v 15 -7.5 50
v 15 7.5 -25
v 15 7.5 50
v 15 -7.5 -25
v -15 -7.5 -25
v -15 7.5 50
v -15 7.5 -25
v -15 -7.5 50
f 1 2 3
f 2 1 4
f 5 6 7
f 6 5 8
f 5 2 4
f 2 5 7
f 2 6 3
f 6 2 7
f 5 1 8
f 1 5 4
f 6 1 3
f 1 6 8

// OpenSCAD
// Define the dimensions of the rectangular blocks
block_width = 20;  // Width of the block
block_height = 40; // Height of the block
block_depth = 10;  // Depth of the block

// Function to create a rectangular block
module rectangular_block(width, height, depth, slant_top = false, slant_side = false, rotation = [0, 0, 0]) {
    if (slant_top) {
        // Create a block with a slanted top surface
        polyhedron(points=[
            [0, 0, 0], [width, 0, 0], [width, depth, 0], [0, depth, 0], // Base vertices
            [0, 0, height], [width, 0, height], [width, depth, height - 5], [0, depth, height - 5] // Top vertices with slant
        ],
        faces=[
            [0, 1, 2, 3], // Base
            [4, 5, 6, 7], // Top
            [0, 1, 5, 4], // Side 1
            [1, 2, 6, 5], // Side 2
            [2, 3, 7, 6], // Side 3
            [3, 0, 4, 7]  // Side 4
        ]);
    } else if (slant_side) {
        // Create a block with a slanted side surface
        polyhedron(points=[
            [0, 0, 0], [width, 0, 0], [width, depth, 0], [0, depth, 0], // Base vertices
            [0, 0, height], [width, 0, height], [width - 5, depth, height], [0, depth, height] // Top vertices with slant
        ],
        faces=[
            [0, 1, 2, 3], // Base
            [4, 5, 6, 7], // Top
            [0, 1, 5, 4], // Side 1
            [1, 2, 6, 5], // Side 2
            [2, 3, 7, 6], // Side 3
            [3, 0, 4, 7]  // Side 4
        ]);
    } else {
        // Create a regular rectangular block
        cube([width, depth, height], center = true);
    }
    rotate(rotation) {
        translate([0, 0, height / 2]) {
            cube([width, depth, height], center = true);
        }
    }
}

// Generate six rectangular blocks with modifications based on the differences list

// Block 1: Adjust the top surface to be flat and parallel to the base
rectangular_block(block_width, block_height, block_depth, slant_top = false);

// Block 2: Reduce the height and increase the width
rectangular_block(block_width + 10, block_height - 10, block_depth);

// Block 3: Adjust the slanted side surface to be perpendicular to the base
rectangular_block(block_width, block_height, block_depth, slant_side = false);

// Block 4: Align the block to be upright and parallel to the axes
rectangular_block(block_width, block_height, block_depth, rotation = [0, 0, 0]);

// Block 5: Increase the dimensions to match the size of the original block
rectangular_block(block_width + 10, block_height + 10, block_depth + 5);

// Block 6: Adjust the shape to be symmetrical and consistent in dimensions
rectangular_block(block_width, block_height, block_depth);
